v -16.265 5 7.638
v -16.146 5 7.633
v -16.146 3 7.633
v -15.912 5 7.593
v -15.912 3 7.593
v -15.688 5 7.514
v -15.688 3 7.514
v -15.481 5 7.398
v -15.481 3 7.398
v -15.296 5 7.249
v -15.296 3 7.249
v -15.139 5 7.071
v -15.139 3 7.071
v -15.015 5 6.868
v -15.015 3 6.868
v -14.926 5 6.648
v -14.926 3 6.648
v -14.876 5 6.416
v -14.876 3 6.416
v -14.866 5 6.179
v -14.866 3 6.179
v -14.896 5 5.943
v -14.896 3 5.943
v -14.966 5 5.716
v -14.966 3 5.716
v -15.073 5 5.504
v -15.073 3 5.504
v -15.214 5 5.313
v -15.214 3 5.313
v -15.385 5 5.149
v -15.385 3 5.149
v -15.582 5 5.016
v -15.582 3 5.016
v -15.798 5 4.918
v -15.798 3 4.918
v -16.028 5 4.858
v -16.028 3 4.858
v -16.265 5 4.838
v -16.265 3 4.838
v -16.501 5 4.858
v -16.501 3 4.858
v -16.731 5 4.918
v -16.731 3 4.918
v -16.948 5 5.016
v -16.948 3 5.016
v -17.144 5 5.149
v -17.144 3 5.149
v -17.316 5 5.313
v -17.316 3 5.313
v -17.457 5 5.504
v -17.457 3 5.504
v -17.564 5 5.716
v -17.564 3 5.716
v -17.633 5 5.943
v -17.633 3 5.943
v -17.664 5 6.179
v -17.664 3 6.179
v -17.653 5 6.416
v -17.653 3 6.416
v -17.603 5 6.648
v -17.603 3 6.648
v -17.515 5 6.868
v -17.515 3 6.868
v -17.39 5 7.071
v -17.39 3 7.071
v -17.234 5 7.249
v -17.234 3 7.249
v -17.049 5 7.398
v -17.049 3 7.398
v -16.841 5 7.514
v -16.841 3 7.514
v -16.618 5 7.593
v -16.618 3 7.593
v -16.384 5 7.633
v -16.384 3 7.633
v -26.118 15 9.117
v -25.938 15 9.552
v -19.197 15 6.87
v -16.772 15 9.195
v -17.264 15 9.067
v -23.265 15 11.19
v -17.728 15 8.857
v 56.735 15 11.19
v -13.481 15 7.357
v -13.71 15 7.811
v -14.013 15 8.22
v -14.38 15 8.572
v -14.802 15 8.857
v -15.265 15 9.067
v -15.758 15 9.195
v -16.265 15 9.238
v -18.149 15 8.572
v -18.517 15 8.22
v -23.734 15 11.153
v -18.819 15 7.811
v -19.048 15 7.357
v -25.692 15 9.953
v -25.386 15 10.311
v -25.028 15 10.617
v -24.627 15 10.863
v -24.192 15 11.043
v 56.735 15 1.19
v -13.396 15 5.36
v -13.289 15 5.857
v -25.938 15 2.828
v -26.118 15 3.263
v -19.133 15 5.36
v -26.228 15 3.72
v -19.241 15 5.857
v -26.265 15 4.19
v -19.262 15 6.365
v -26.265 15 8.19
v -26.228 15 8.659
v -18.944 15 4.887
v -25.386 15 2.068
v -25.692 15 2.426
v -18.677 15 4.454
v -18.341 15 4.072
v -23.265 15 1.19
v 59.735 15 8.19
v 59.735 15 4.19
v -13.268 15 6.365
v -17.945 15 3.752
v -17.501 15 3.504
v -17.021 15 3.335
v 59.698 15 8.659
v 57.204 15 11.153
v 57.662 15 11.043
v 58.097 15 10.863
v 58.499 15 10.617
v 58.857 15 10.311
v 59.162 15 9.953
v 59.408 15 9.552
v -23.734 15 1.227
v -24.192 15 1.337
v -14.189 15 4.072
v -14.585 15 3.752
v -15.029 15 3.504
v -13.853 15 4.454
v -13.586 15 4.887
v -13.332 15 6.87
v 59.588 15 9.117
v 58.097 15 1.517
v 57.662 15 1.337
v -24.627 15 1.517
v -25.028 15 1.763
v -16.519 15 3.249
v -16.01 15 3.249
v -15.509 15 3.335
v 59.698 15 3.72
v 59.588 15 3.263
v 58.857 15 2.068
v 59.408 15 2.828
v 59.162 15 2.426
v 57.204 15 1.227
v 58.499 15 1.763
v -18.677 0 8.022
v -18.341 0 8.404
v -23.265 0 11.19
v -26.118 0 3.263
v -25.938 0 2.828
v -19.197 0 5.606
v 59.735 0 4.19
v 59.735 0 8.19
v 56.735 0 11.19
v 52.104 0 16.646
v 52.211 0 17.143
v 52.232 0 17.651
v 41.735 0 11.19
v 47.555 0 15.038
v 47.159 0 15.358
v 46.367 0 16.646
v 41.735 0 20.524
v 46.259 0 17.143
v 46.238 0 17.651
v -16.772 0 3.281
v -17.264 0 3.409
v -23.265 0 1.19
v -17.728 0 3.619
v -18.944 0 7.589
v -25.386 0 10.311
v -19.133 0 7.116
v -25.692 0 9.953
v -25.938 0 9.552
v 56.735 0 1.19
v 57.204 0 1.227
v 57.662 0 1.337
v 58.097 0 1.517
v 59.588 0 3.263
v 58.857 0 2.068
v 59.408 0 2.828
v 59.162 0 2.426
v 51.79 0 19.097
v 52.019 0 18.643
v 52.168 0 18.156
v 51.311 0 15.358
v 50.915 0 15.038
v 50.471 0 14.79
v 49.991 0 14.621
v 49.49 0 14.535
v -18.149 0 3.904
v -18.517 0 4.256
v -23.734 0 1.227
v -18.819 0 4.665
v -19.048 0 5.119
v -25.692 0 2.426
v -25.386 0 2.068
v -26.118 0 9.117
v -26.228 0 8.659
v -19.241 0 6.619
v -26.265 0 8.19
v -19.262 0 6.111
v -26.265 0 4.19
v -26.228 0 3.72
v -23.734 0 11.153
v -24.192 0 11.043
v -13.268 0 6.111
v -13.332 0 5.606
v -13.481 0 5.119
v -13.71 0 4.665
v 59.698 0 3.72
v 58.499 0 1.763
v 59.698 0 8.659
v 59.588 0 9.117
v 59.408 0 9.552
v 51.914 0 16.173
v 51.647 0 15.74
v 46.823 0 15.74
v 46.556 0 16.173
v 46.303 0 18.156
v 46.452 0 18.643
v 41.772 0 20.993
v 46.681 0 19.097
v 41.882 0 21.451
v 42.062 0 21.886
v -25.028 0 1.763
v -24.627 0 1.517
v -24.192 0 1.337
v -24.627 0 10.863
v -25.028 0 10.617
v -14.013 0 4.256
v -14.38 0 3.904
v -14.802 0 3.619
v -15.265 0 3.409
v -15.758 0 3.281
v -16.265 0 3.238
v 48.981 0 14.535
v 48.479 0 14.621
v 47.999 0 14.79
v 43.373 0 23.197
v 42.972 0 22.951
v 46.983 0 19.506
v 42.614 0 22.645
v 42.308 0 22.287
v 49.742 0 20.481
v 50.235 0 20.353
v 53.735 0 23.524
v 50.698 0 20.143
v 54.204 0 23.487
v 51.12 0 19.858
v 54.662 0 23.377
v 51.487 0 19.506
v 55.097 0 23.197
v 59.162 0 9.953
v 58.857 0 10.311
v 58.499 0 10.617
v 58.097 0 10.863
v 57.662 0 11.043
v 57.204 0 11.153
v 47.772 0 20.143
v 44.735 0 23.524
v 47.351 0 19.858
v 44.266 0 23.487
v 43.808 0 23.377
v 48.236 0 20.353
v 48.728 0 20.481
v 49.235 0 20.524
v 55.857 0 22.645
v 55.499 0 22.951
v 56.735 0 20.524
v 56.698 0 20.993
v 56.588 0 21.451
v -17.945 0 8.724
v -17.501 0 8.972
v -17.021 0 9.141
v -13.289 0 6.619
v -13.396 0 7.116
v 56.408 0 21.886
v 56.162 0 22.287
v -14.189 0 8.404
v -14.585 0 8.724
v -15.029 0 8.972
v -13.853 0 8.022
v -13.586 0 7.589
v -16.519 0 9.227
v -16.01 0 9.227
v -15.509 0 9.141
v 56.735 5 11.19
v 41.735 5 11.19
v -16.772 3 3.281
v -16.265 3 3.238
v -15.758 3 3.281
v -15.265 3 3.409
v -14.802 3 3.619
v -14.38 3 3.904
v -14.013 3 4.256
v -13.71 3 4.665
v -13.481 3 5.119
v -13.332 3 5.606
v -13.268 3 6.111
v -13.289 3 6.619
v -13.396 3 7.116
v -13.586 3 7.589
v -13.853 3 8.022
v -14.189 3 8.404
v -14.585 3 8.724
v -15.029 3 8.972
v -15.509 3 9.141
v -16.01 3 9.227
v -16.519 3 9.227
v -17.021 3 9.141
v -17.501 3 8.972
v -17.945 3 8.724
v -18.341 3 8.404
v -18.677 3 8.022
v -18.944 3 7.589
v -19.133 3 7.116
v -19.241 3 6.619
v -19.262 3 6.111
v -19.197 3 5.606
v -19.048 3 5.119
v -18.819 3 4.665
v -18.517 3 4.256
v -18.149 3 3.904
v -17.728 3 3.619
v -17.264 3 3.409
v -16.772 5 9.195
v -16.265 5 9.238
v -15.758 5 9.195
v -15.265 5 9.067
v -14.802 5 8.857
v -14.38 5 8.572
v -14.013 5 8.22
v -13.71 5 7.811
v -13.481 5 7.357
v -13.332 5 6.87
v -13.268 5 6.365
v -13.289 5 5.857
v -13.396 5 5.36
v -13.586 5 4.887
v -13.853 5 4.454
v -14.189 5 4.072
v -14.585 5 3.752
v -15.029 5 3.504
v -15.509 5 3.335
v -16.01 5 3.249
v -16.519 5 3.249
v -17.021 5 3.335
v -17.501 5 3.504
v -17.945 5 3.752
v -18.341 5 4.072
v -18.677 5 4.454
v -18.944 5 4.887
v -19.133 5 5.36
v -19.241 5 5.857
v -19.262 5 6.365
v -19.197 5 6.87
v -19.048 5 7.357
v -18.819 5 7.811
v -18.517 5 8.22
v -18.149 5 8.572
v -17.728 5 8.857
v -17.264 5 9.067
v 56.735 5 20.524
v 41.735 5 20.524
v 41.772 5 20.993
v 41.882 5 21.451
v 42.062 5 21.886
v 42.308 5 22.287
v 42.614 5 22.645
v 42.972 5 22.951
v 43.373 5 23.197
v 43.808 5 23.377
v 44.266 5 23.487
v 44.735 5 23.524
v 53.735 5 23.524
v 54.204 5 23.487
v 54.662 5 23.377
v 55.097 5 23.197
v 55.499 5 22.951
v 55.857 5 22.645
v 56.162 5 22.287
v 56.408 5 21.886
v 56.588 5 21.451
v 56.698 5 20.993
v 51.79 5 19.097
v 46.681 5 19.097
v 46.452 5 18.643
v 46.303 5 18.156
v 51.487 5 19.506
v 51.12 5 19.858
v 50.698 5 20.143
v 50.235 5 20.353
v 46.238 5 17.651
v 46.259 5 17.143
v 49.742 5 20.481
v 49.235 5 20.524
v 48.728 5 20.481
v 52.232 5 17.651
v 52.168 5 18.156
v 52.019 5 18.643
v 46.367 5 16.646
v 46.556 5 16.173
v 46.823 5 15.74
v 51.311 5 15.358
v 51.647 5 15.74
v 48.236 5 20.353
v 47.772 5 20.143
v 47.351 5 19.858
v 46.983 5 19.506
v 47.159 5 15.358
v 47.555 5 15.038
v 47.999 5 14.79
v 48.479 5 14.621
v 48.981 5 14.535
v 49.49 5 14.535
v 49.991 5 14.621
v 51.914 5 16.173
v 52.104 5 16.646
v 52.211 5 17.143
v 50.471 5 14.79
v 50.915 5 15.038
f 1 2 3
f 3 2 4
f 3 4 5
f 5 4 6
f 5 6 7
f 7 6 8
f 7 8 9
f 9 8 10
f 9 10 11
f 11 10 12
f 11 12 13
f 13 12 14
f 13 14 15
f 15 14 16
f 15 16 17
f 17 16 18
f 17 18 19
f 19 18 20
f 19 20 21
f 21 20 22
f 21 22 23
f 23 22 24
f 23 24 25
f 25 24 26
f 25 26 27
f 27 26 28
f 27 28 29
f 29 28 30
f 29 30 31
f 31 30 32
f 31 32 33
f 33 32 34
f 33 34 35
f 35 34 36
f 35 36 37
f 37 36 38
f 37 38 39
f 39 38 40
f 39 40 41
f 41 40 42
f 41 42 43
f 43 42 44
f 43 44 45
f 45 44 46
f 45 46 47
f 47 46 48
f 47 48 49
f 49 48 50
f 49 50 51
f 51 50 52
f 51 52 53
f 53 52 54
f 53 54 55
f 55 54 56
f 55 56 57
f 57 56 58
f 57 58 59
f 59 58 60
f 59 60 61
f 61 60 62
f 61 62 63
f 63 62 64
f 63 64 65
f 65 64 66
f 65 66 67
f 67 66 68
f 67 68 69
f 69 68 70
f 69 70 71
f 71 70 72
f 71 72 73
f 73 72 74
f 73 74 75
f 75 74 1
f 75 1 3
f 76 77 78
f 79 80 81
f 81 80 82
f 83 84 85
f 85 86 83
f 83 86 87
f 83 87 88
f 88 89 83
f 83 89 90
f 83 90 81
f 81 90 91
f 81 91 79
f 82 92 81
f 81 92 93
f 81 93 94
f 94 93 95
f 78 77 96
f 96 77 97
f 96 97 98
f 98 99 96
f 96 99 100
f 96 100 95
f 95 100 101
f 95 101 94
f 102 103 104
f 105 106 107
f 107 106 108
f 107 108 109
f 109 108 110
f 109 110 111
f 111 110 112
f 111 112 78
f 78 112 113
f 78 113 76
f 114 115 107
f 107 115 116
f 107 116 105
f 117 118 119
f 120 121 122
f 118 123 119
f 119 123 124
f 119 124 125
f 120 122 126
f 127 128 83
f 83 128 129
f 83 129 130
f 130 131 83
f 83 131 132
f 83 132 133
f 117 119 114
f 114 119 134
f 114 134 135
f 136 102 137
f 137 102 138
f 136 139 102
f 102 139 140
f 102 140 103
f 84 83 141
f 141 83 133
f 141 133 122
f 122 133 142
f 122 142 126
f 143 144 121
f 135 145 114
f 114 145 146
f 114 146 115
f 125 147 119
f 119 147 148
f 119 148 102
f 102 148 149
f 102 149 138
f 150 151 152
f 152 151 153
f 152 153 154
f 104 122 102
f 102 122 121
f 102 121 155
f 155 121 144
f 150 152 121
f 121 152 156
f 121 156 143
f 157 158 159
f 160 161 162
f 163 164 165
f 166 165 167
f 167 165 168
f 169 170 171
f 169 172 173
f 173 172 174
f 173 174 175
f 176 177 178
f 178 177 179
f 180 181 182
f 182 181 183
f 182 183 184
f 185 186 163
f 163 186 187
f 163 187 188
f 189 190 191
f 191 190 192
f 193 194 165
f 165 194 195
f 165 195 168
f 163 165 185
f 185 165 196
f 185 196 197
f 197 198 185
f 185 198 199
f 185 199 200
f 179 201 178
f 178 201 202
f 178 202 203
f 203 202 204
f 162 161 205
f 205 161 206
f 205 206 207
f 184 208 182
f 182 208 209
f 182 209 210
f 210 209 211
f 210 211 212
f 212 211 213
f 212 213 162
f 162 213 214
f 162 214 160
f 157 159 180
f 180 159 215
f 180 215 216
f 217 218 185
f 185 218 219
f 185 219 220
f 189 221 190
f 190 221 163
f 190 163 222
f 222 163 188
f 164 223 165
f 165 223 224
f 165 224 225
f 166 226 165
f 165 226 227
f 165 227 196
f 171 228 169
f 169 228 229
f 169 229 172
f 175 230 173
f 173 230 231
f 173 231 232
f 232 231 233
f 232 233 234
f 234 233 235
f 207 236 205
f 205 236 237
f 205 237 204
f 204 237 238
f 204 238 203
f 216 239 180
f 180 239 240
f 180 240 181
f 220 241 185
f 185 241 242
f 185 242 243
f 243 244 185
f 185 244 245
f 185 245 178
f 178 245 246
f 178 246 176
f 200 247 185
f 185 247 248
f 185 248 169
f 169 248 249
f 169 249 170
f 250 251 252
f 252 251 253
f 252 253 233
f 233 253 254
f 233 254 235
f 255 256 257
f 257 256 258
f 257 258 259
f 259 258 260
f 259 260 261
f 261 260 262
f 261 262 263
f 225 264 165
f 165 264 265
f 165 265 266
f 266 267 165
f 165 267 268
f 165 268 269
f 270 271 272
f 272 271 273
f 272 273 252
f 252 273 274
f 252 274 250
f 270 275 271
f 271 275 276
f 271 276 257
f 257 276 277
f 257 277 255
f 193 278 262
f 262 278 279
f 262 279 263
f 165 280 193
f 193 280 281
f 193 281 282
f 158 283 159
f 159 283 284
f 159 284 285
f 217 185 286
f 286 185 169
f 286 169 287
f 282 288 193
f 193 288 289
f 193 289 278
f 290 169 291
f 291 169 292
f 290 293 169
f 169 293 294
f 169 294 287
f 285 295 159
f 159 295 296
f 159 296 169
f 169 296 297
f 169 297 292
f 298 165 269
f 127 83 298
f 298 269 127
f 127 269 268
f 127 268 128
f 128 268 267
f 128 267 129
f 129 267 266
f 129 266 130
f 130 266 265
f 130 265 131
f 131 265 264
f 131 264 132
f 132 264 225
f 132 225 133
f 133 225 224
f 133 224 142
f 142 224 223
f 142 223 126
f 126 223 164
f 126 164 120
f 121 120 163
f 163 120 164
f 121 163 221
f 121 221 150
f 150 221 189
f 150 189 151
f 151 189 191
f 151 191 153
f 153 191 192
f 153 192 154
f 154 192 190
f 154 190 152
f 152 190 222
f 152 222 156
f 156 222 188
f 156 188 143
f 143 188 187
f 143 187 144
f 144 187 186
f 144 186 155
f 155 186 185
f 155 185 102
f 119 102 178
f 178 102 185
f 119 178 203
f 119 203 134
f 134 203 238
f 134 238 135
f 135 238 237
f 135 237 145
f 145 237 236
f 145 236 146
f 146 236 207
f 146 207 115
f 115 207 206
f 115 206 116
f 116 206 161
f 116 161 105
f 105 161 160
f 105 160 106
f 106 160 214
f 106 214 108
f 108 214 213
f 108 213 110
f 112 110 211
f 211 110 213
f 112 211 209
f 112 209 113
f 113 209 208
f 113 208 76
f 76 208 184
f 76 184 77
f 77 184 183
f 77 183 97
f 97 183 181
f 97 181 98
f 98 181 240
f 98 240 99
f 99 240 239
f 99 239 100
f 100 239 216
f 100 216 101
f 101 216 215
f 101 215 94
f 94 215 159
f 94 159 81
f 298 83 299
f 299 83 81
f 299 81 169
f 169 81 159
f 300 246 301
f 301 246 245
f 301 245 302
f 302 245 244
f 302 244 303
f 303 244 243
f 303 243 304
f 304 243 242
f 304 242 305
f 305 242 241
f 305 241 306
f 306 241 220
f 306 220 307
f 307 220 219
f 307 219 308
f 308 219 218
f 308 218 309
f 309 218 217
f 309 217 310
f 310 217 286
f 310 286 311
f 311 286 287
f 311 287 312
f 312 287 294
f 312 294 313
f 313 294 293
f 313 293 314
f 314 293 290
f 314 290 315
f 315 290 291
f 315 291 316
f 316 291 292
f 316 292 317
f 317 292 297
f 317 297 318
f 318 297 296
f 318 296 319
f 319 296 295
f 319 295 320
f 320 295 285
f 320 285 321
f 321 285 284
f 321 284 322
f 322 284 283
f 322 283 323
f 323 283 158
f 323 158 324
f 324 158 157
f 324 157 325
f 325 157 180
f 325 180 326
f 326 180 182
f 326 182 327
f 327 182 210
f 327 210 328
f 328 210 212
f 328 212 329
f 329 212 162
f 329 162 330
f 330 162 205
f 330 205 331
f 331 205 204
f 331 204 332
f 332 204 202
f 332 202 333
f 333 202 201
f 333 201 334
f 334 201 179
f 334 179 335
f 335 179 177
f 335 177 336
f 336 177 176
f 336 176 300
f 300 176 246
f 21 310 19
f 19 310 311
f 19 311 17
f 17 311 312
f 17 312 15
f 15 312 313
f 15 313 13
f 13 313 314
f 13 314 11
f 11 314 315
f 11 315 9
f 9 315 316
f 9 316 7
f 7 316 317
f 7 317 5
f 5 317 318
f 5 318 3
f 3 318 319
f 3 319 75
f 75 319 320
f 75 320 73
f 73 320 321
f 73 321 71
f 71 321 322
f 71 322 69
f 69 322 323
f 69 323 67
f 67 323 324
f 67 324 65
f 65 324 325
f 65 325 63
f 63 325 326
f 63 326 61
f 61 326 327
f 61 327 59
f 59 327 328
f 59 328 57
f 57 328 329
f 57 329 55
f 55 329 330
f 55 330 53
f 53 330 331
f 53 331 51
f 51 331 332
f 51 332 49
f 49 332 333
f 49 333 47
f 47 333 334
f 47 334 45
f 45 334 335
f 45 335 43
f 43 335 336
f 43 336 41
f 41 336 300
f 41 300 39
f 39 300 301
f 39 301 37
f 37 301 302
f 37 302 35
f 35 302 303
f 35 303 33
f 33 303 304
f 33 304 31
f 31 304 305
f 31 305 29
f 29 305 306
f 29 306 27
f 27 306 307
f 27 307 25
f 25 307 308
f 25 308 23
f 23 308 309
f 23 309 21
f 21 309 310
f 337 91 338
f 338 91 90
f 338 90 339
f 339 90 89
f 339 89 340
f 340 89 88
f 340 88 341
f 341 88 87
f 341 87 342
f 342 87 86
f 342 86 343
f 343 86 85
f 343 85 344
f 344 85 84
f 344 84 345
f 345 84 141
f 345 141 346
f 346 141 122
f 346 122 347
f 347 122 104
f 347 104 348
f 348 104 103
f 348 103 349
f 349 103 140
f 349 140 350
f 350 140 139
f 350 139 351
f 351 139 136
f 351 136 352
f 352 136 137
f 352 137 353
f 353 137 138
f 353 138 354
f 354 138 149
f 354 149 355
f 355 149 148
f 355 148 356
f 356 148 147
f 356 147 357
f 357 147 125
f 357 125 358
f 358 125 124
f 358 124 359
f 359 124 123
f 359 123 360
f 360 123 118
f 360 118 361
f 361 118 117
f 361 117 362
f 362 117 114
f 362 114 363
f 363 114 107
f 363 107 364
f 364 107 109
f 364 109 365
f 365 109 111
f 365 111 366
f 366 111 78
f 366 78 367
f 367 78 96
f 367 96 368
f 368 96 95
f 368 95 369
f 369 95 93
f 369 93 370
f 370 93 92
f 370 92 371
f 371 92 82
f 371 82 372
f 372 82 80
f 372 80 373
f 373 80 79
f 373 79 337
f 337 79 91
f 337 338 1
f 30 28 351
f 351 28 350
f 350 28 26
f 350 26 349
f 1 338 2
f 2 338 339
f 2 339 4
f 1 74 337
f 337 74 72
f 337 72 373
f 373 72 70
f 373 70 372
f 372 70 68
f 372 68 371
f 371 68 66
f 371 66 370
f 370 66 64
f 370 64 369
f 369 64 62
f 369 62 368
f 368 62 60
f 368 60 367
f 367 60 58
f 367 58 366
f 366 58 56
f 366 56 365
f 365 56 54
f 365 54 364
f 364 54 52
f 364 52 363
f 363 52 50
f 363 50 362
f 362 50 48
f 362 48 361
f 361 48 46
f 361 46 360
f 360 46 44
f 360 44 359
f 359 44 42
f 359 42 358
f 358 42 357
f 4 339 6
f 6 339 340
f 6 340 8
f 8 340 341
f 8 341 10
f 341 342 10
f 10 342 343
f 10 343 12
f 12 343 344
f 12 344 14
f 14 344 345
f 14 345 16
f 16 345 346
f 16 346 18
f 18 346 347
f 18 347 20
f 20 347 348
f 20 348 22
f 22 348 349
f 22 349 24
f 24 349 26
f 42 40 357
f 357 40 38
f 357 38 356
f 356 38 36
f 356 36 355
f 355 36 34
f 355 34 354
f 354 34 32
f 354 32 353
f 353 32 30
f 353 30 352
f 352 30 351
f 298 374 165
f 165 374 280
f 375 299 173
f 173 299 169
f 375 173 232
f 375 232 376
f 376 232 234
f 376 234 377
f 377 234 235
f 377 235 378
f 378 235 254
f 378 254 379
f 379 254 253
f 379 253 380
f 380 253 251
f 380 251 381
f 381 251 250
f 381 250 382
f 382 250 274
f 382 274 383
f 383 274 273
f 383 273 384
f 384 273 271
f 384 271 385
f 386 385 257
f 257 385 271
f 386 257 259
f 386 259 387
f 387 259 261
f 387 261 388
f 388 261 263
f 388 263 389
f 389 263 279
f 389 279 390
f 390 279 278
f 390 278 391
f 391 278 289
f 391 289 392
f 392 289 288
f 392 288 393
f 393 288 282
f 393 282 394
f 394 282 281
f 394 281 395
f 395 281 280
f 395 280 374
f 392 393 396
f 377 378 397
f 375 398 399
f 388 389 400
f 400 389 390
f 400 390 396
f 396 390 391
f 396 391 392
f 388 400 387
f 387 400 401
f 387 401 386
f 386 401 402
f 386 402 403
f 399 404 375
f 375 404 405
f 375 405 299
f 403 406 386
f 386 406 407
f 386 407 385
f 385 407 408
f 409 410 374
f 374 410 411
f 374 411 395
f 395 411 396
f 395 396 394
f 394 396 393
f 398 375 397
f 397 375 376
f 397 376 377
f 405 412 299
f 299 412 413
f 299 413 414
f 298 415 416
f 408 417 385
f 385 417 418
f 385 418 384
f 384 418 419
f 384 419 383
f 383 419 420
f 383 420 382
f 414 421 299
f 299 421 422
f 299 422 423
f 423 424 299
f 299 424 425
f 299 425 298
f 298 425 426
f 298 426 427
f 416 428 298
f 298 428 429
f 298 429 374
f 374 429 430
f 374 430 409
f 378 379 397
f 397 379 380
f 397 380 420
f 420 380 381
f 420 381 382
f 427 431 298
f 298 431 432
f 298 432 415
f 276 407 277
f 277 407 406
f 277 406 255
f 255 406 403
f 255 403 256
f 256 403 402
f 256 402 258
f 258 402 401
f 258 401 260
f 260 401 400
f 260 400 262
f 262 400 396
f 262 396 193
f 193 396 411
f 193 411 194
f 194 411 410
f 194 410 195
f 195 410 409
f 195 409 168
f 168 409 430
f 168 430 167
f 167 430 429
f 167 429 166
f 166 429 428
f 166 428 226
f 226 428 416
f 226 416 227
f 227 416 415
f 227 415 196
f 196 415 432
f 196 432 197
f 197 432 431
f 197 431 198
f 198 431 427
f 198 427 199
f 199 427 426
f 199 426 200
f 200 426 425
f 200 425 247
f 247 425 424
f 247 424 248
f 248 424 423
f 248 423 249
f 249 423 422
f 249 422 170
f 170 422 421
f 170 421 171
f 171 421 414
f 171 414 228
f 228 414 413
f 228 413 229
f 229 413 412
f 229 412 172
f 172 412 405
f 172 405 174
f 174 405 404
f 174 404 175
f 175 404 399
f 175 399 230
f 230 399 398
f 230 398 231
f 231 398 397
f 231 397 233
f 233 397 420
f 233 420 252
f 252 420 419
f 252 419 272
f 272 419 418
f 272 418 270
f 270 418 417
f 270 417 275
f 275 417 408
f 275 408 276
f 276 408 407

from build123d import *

# Parameters (mm, degrees)
SKETCH1_R           = 1.4
BOSS_EXTRUDE1_DEPTH = 15
SKETCH3_R           = 3
CUT_EXTRUDE2_DEPTH  = 3
SKETCH4_R           = 3
CUT_EXTRUDE3_DEPTH  = 10
BOSS_EXTRUDE2_DEPTH = 5
SKETCH7_R           = 3
CUT_EXTRUDE4_DEPTH  = 5


with BuildPart() as part:
    # Sketch1 → Boss-Extrude1 (new body)
    with BuildSketch(Plane(origin=(0, 0, 0), x_dir=(1, 0, 0), z_dir=(0, 1, 0))):
        with BuildLine():
            Line((-26.264799853, -4.189688425), (-26.264799853, -8.189688425))
            ThreePointArc((-26.264799853, -8.189688425), (-25.386120197, -10.311008768), (-23.264799853, -11.189688425))
            Line((-23.264799853, -11.189688425), (14.289498055, -11.189688425))
            Line((14.289498055, -11.189688425), (56.735200147, -11.189688425))
            ThreePointArc((56.735200147, -11.189688425), (58.85652049, -10.311008768), (59.735200147, -8.189688425))
            Line((59.735200147, -8.189688425), (59.735200147, -4.189688425))
            ThreePointArc((59.735200147, -4.189688425), (58.85652049, -2.068368081), (56.735200147, -1.189688425))
            Line((56.735200147, -1.189688425), (-23.264799853, -1.189688425))
            ThreePointArc((-23.264799853, -1.189688425), (-25.386120197, -2.068368081), (-26.264799853, -4.189688425))
        make_face()
        with Locations((-16.264799853, -6.238015415)):
            Circle(SKETCH1_R, mode=Mode.SUBTRACT)
    extrude(amount=BOSS_EXTRUDE1_DEPTH)

    # Sketch3 → Cut-Extrude2 (cut)
    with BuildSketch(Plane.XZ):
        with Locations((-16.264799853, 6.238015415)):
            Circle(SKETCH3_R)
    extrude(amount=-CUT_EXTRUDE2_DEPTH, mode=Mode.SUBTRACT)

    # Sketch4 → Cut-Extrude3 (cut)
    with BuildSketch(Plane(origin=(0, 15, 0), x_dir=(1, 0, 0), z_dir=(0, 1, 0))):
        with Locations((-16.264799853, -6.238015415)):
            Circle(SKETCH4_R)
    extrude(amount=-CUT_EXTRUDE3_DEPTH, mode=Mode.SUBTRACT)

    # Sketch5 → Boss-Extrude2 (add)
    with BuildSketch(Plane.XZ):
        with BuildLine():
            Line((56.735200147, 11.189688425), (41.735200147, 11.189688425))
            Line((41.735200147, 11.189688425), (41.735200147, 20.523996962))
            ThreePointArc((41.735200147, 20.523996962), (42.613879803, 22.645317306), (44.735200147, 23.523996962))
            Line((44.735200147, 23.523996962), (53.735200147, 23.523996962))
            ThreePointArc((53.735200147, 23.523996962), (55.85652049, 22.645317306), (56.735200147, 20.523996962))
            Line((56.735200147, 20.523996962), (56.735200147, 11.189688425))
        make_face()
    extrude(amount=-BOSS_EXTRUDE2_DEPTH)

    # Sketch7 → Cut-Extrude4 (cut)
    with BuildSketch(Plane(origin=(0, 5, 0), x_dir=(1, 0, 0), z_dir=(0, 1, 0))):
        with Locations((49.235200147, -17.523996962)):
            Circle(SKETCH7_R)
    extrude(amount=-CUT_EXTRUDE4_DEPTH, mode=Mode.SUBTRACT)


solid = part.part
